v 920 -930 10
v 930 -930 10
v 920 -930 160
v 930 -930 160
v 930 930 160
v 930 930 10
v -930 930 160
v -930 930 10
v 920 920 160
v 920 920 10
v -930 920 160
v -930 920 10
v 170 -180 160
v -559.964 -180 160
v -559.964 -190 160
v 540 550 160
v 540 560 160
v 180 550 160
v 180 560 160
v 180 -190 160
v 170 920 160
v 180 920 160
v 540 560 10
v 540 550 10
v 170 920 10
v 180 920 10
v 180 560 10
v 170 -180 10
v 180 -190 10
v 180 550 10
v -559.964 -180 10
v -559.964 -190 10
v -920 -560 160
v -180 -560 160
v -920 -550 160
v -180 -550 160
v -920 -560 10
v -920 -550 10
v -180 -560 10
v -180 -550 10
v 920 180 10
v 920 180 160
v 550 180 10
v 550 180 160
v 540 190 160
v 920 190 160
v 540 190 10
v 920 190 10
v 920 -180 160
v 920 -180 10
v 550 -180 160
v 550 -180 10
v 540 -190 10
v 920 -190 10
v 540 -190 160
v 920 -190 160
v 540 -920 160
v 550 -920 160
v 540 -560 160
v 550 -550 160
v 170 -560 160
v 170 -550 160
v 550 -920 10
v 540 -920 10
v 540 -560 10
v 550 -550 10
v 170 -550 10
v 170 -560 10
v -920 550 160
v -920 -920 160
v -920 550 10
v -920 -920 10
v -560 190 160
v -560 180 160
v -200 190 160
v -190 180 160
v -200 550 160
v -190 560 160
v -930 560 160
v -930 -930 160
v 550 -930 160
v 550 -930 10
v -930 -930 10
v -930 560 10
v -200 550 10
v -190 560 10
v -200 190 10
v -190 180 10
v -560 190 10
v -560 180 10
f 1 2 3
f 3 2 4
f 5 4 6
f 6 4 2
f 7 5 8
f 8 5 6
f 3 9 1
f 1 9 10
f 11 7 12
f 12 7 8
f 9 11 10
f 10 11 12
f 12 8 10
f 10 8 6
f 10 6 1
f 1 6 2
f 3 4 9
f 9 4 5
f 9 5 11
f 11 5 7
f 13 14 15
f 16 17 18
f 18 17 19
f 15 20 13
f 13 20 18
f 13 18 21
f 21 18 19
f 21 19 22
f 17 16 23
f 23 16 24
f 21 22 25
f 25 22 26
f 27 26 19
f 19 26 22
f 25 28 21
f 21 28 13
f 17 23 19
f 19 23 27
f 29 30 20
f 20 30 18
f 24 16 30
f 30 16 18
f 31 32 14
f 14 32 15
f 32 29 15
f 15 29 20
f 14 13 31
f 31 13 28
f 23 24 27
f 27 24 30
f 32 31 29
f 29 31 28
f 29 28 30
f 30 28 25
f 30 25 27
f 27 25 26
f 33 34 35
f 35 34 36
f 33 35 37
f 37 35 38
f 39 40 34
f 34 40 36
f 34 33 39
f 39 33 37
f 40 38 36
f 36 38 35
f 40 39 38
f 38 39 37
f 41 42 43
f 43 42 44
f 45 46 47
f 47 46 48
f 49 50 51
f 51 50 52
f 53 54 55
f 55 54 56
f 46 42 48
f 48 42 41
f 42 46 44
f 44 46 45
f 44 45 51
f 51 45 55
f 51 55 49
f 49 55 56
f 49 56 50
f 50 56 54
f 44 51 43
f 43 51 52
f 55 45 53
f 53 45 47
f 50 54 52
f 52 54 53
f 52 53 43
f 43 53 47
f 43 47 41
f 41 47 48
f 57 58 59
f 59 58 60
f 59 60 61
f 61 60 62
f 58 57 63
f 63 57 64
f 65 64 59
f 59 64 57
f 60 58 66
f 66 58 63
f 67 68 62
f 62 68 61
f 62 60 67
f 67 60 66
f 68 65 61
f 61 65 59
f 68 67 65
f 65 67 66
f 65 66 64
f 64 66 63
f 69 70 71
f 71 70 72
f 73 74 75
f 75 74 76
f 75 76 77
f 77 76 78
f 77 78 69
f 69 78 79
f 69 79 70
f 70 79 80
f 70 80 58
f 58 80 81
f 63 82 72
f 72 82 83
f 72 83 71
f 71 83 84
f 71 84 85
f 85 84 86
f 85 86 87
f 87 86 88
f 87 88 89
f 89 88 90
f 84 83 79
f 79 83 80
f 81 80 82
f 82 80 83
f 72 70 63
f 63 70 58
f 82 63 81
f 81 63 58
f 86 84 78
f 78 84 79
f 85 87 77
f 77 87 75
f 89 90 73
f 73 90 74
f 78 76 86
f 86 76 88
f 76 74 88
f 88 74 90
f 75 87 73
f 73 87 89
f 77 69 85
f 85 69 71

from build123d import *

# Parameters (mm, degrees)
SKETCH1_W           = 1860
SKETCH1_H           = 1860
BOSS_EXTRUDE1_DEPTH = 10
SKETCH2_W           = 1860
SKETCH2_H           = 1860
SKETCH2_W_2         = 1840
SKETCH2_H_2         = 1840
EXTRUDE_THIN1_DEPTH = 150
SKETCH3_W           = 1840
SKETCH3_H           = 10
BOSS_EXTRUDE2_DEPTH = 150
LPATTERN1_COUNT     = 4
LPATTERN1_PITCH     = 370
SKETCH4_W           = 10
SKETCH4_H           = 1840
BOSS_EXTRUDE3_DEPTH = 150
LPATTERN2_COUNT     = 4
LPATTERN2_PITCH     = 370
SKETCH8_W           = 370
SKETCH8_H           = 10
CUT_EXTRUDE6_DEPTH  = 150
SKETCH9_W           = 370
SKETCH9_H           = 10
CUT_EXTRUDE7_DEPTH  = 150
SKETCH10_W          = 360
SKETCH10_H          = 10
CUT_EXTRUDE8_DEPTH  = 150
SKETCH11_W          = 360
SKETCH11_H          = 10
CUT_EXTRUDE9_DEPTH  = 150
SKETCH12_W          = 10
SKETCH12_H          = 730
CUT_EXTRUDE10_DEPTH = 150
SKETCH13_W          = 10
SKETCH13_H          = 360
CUT_EXTRUDE11_DEPTH = 150
SKETCH14_W          = 10
SKETCH14_H          = 360
CUT_EXTRUDE12_DEPTH = 150
SKETCH15_W          = 10
SKETCH15_H          = 360
CUT_EXTRUDE13_DEPTH = 150
SKETCH16_W          = 10
SKETCH16_H          = 360
CUT_EXTRUDE14_DEPTH = 150
SKETCH17_W          = 350
SKETCH17_H          = 10
CUT_EXTRUDE15_DEPTH = 150
SKETCH18_W          = 10
SKETCH18_H          = 360
CUT_EXTRUDE16_DEPTH = 150
SKETCH19_W          = 10
SKETCH19_H          = 360
CUT_EXTRUDE17_DEPTH = 150
SKETCH20_W          = 10
SKETCH20_H          = 730
CUT_EXTRUDE18_DEPTH = 150
SKETCH21_W          = 350
SKETCH21_H          = 10
CUT_EXTRUDE19_DEPTH = 150
SKETCH22_W          = 10
SKETCH22_H          = 360
CUT_EXTRUDE20_DEPTH = 150
SKETCH23_W          = 350
SKETCH23_H          = 10
CUT_EXTRUDE21_DEPTH = 150
SKETCH24_W          = 360.035966522
SKETCH24_H          = 10
CUT_EXTRUDE22_DEPTH = 150
SKETCH25_W          = 10
SKETCH25_H          = 360
CUT_EXTRUDE23_DEPTH = 150
SKETCH26_W          = 10
SKETCH26_H          = 360
CUT_EXTRUDE24_DEPTH = 150
SKETCH27_W          = 360
SKETCH27_H          = 10
CUT_EXTRUDE25_DEPTH = 150
SKETCH28_W          = 370
SKETCH28_H          = 10
CUT_EXTRUDE26_DEPTH = 150
SKETCH30_W          = 10
SKETCH30_H          = 370
CUT_EXTRUDE29_DEPTH = 150
SKETCH31_W          = 10
SKETCH31_H          = 360
CUT_EXTRUDE30_DEPTH = 150
SKETCH32_W          = 1860
SKETCH32_H          = 1860
CUT_EXTRUDE33_DEPTH = 10
SKETCH33_W          = 10
SKETCH33_H          = 10
CUT_EXTRUDE34_DEPTH = 1324.744688375
SKETCH34_W          = 150
SKETCH34_H          = 10
BOSS_EXTRUDE4_DEPTH = 10


with BuildPart() as part:
    # Sketch1 → Boss-Extrude1 (new body)
    with BuildSketch(Plane.XY):
        Rectangle(SKETCH1_W, SKETCH1_H)
    extrude(amount=BOSS_EXTRUDE1_DEPTH)

    # Sketch3 → Boss-Extrude2 (add)
    with BuildSketch(Plane.XY.offset(10)):
        with Locations((0, -555)):
            Rectangle(SKETCH3_W, SKETCH3_H)
    boss_extrude2 = extrude(amount=BOSS_EXTRUDE2_DEPTH)

    # LPattern1: Boss-Extrude2 ×4
    with Locations(*[(0, i * LPATTERN1_PITCH, 0) for i in range(1, LPATTERN1_COUNT)]):
        add(boss_extrude2)

    # Sketch4 → Boss-Extrude3 (add)
    with BuildSketch(Plane.XY.offset(10)):
        with Locations((545, 0)):
            Rectangle(SKETCH4_W, SKETCH4_H)
    boss_extrude3 = extrude(amount=BOSS_EXTRUDE3_DEPTH)

    # LPattern2: Boss-Extrude3 ×4
    with Locations(*[(-i * LPATTERN2_PITCH, 0, 0) for i in range(1, LPATTERN2_COUNT)]):
        add(boss_extrude3)

    # Sketch8 → Cut-Extrude6 (cut)
    with BuildSketch(Plane.XY.offset(160)):
        with Locations((735, -555)):
            Rectangle(SKETCH8_W, SKETCH8_H)
    extrude(amount=-CUT_EXTRUDE6_DEPTH, mode=Mode.SUBTRACT)

    # Sketch9 → Cut-Extrude7 (cut)
    with BuildSketch(Plane.XY.offset(160)):
        with Locations((735, 555)):
            Rectangle(SKETCH9_W, SKETCH9_H)
    extrude(amount=-CUT_EXTRUDE7_DEPTH, mode=Mode.SUBTRACT)

    # Sketch10 → Cut-Extrude8 (cut)
    with BuildSketch(Plane.XY.offset(160)):
        with Locations((360, 185)):
            Rectangle(SKETCH10_W, SKETCH10_H)
    extrude(amount=-CUT_EXTRUDE8_DEPTH, mode=Mode.SUBTRACT)

    # Sketch11 → Cut-Extrude9 (cut)
    with BuildSketch(Plane.XY.offset(160)):
        with Locations((360, -185)):
            Rectangle(SKETCH11_W, SKETCH11_H)
    extrude(amount=-CUT_EXTRUDE9_DEPTH, mode=Mode.SUBTRACT)

    # Sketch12 → Cut-Extrude10 (cut)
    with BuildSketch(Plane.XY.offset(160)):
        with Locations((545, 555)):
            Rectangle(SKETCH12_W, SKETCH12_H)
    extrude(amount=-CUT_EXTRUDE10_DEPTH, mode=Mode.SUBTRACT)

    # Sketch13 → Cut-Extrude11 (cut)
    with BuildSketch(Plane.XY.offset(160)):
        with Locations((545, -370)):
            Rectangle(SKETCH13_W, SKETCH13_H)
    extrude(amount=-CUT_EXTRUDE11_DEPTH, mode=Mode.SUBTRACT)

    # Sketch14 → Cut-Extrude12 (cut)
    with BuildSketch(Plane.XY.offset(160)):
        with Locations((-565, -740)):
            Rectangle(SKETCH14_W, SKETCH14_H)
    extrude(amount=-CUT_EXTRUDE12_DEPTH, mode=Mode.SUBTRACT)

    # Sketch15 → Cut-Extrude13 (cut)
    with BuildSketch(Plane.XY.offset(160)):
        with Locations((-195, -740)):
            Rectangle(SKETCH15_W, SKETCH15_H)
    extrude(amount=-CUT_EXTRUDE13_DEPTH, mode=Mode.SUBTRACT)

    # Sketch16 → Cut-Extrude14 (cut)
    with BuildSketch(Plane.XY.offset(160)):
        with Locations((175, -740)):
            Rectangle(SKETCH16_W, SKETCH16_H)
    extrude(amount=-CUT_EXTRUDE14_DEPTH, mode=Mode.SUBTRACT)

    # Sketch17 → Cut-Extrude15 (cut)
    with BuildSketch(Plane.XY.offset(160)):
        with Locations((-5, -555)):
            Rectangle(SKETCH17_W, SKETCH17_H)
    extrude(amount=-CUT_EXTRUDE15_DEPTH, mode=Mode.SUBTRACT)

    # Sketch18 → Cut-Extrude16 (cut)
    with BuildSketch(Plane.XY.offset(160)):
        with Locations((-195, -370)):
            Rectangle(SKETCH18_W, SKETCH18_H)
    extrude(amount=-CUT_EXTRUDE16_DEPTH, mode=Mode.SUBTRACT)

    # Sketch19 → Cut-Extrude17 (cut)
    with BuildSketch(Plane.XY.offset(160)):
        with Locations((-565, -370)):
            Rectangle(SKETCH19_W, SKETCH19_H)
    extrude(amount=-CUT_EXTRUDE17_DEPTH, mode=Mode.SUBTRACT)

    # Sketch20 → Cut-Extrude18 (cut)
    with BuildSketch(Plane.XY.offset(160)):
        with Locations((-565, 185)):
            Rectangle(SKETCH20_W, SKETCH20_H)
    extrude(amount=-CUT_EXTRUDE18_DEPTH, mode=Mode.SUBTRACT)

    # Sketch21 → Cut-Extrude19 (cut)
    with BuildSketch(Plane.XY.offset(160)):
        with Locations((-745, 185)):
            Rectangle(SKETCH21_W, SKETCH21_H)
    extrude(amount=-CUT_EXTRUDE19_DEPTH, mode=Mode.SUBTRACT)

    # Sketch22 → Cut-Extrude20 (cut)
    with BuildSketch(Plane.XY.offset(160)):
        with Locations((-195, 0)):
            Rectangle(SKETCH22_W, SKETCH22_H)
    extrude(amount=-CUT_EXTRUDE20_DEPTH, mode=Mode.SUBTRACT)

    # Sketch23 → Cut-Extrude21 (cut)
    with BuildSketch(Plane.XY.offset(160)):
        with Locations((-5, 185)):
            Rectangle(SKETCH23_W, SKETCH23_H)
    extrude(amount=-CUT_EXTRUDE21_DEPTH, mode=Mode.SUBTRACT)

    # Sketch24 → Cut-Extrude22 (cut)
    with BuildSketch(Plane.XY.offset(160)):
        with Locations((-739.982016739, -185)):
            Rectangle(SKETCH24_W, SKETCH24_H)
    extrude(amount=-CUT_EXTRUDE22_DEPTH, mode=Mode.SUBTRACT)

    # Sketch25 → Cut-Extrude23 (cut)
    with BuildSketch(Plane.XY.offset(160)):
        with Locations((-565, 740)):
            Rectangle(SKETCH25_W, SKETCH25_H)
    extrude(amount=-CUT_EXTRUDE23_DEPTH, mode=Mode.SUBTRACT)

    # Sketch26 → Cut-Extrude24 (cut)
    with BuildSketch(Plane.XY.offset(160)):
        with Locations((-195, 740)):
            Rectangle(SKETCH26_W, SKETCH26_H)
    extrude(amount=-CUT_EXTRUDE24_DEPTH, mode=Mode.SUBTRACT)

    # Sketch27 → Cut-Extrude25 (cut)
    with BuildSketch(Plane.XY.offset(160)):
        with Locations((-10, 555)):
            Rectangle(SKETCH27_W, SKETCH27_H)
    extrude(amount=-CUT_EXTRUDE25_DEPTH, mode=Mode.SUBTRACT)

    # Sketch31 → Cut-Extrude30 (cut)
    with BuildSketch(Plane.XY.offset(160)):
        with Locations((175, -370)):
            Rectangle(SKETCH31_W, SKETCH31_H)
    extrude(amount=-CUT_EXTRUDE30_DEPTH, mode=Mode.SUBTRACT)

    # Sketch32 → Cut-Extrude33 (cut)
    with BuildSketch(Plane.XY.offset(10)):
        Rectangle(SKETCH32_W, SKETCH32_H)
    extrude(amount=-CUT_EXTRUDE33_DEPTH, mode=Mode.SUBTRACT)


with BuildPart() as body_2:
    # Sketch2 → Extrude-Thin1 (new body)
    with BuildSketch(Plane.XY.offset(10)):
        Rectangle(SKETCH2_W, SKETCH2_H)
        Rectangle(SKETCH2_W_2, SKETCH2_H_2, mode=Mode.SUBTRACT)
    extrude(amount=EXTRUDE_THIN1_DEPTH)

    # Sketch28 → Cut-Extrude26 (cut)
    with BuildSketch(Plane.XY.offset(160)):
        with Locations((735, -925)):
            Rectangle(SKETCH28_W, SKETCH28_H)
    extrude(amount=-CUT_EXTRUDE26_DEPTH, mode=Mode.SUBTRACT)

    # Sketch30 → Cut-Extrude29 (cut)
    with BuildSketch(Plane.XY.offset(160)):
        with Locations((-925, 735)):
            Rectangle(SKETCH30_W, SKETCH30_H)
    extrude(amount=-CUT_EXTRUDE29_DEPTH, mode=Mode.SUBTRACT)


with BuildPart() as cut_extrude29_piece_1:
    # of the separate pieces the step leaves, piece 1, a body of its own (cut_extrude29_pieces)
    add(body_2.part.solids().sort_by_distance((930, 930, 10))[0])


with BuildPart() as cut_extrude29_piece_2:
    # of the separate pieces the step leaves, piece 2, a body of its own (cut_extrude29_pieces)
    add(body_2.part.solids().sort_by_distance((-930, -930, 10))[0])



with BuildPart() as cut_extrude33_piece_1:
    # of the separate pieces the step leaves, piece 1, a body of its own (cut_extrude33_pieces)
    add(part.part.solids().sort_by_distance((-559.964033478, -180, 160))[0])


with BuildPart() as cut_extrude33_piece_2:
    # of the separate pieces the step leaves, piece 2, a body of its own (cut_extrude33_pieces)
    add(part.part.solids().sort_by_distance((-180, 190, 10))[0])

    # Sketch33 → Cut-Extrude34 (cut, through all)
    with BuildSketch(Plane(origin=(0, 0, 10), x_dir=(-1, 0, 0), z_dir=(0, 0, -1))):
        with Locations((185, 185)):
            Rectangle(SKETCH33_W, SKETCH33_H)
    extrude(amount=-CUT_EXTRUDE34_DEPTH, mode=Mode.SUBTRACT)


with BuildPart() as cut_extrude33_piece_3:
    # of the separate pieces the step leaves, piece 3, a body of its own (cut_extrude33_pieces)
    add(part.part.solids().sort_by_distance((540, -190, 160))[0])


with BuildPart() as cut_extrude33_piece_4:
    # of the separate pieces the step leaves, piece 4, a body of its own (cut_extrude33_pieces)
    add(part.part.solids().sort_by_distance((550, -550, 10))[0])


with BuildPart() as cut_extrude33_piece_5:
    # of the separate pieces the step leaves, piece 5, a body of its own (cut_extrude33_pieces)
    add(part.part.solids().sort_by_distance((-920, -550, 10))[0])


with BuildPart() as cut_extrude29_piece_2_1:
    add(cut_extrude29_piece_2.part)

    add(cut_extrude33_piece_2.part)  # Boss-Extrude4 merges Cut-Extrude33 piece 2
    # Sketch34 → Boss-Extrude4 (add)
    with BuildSketch(Plane.ZY.offset(920)):
        with Locations((85, 555)):
            Rectangle(SKETCH34_W, SKETCH34_H)
    extrude(amount=BOSS_EXTRUDE4_DEPTH)


solid = Compound([cut_extrude29_piece_1.part, cut_extrude33_piece_1.part, cut_extrude33_piece_3.part, cut_extrude33_piece_4.part, cut_extrude33_piece_5.part, cut_extrude29_piece_2_1.part])
